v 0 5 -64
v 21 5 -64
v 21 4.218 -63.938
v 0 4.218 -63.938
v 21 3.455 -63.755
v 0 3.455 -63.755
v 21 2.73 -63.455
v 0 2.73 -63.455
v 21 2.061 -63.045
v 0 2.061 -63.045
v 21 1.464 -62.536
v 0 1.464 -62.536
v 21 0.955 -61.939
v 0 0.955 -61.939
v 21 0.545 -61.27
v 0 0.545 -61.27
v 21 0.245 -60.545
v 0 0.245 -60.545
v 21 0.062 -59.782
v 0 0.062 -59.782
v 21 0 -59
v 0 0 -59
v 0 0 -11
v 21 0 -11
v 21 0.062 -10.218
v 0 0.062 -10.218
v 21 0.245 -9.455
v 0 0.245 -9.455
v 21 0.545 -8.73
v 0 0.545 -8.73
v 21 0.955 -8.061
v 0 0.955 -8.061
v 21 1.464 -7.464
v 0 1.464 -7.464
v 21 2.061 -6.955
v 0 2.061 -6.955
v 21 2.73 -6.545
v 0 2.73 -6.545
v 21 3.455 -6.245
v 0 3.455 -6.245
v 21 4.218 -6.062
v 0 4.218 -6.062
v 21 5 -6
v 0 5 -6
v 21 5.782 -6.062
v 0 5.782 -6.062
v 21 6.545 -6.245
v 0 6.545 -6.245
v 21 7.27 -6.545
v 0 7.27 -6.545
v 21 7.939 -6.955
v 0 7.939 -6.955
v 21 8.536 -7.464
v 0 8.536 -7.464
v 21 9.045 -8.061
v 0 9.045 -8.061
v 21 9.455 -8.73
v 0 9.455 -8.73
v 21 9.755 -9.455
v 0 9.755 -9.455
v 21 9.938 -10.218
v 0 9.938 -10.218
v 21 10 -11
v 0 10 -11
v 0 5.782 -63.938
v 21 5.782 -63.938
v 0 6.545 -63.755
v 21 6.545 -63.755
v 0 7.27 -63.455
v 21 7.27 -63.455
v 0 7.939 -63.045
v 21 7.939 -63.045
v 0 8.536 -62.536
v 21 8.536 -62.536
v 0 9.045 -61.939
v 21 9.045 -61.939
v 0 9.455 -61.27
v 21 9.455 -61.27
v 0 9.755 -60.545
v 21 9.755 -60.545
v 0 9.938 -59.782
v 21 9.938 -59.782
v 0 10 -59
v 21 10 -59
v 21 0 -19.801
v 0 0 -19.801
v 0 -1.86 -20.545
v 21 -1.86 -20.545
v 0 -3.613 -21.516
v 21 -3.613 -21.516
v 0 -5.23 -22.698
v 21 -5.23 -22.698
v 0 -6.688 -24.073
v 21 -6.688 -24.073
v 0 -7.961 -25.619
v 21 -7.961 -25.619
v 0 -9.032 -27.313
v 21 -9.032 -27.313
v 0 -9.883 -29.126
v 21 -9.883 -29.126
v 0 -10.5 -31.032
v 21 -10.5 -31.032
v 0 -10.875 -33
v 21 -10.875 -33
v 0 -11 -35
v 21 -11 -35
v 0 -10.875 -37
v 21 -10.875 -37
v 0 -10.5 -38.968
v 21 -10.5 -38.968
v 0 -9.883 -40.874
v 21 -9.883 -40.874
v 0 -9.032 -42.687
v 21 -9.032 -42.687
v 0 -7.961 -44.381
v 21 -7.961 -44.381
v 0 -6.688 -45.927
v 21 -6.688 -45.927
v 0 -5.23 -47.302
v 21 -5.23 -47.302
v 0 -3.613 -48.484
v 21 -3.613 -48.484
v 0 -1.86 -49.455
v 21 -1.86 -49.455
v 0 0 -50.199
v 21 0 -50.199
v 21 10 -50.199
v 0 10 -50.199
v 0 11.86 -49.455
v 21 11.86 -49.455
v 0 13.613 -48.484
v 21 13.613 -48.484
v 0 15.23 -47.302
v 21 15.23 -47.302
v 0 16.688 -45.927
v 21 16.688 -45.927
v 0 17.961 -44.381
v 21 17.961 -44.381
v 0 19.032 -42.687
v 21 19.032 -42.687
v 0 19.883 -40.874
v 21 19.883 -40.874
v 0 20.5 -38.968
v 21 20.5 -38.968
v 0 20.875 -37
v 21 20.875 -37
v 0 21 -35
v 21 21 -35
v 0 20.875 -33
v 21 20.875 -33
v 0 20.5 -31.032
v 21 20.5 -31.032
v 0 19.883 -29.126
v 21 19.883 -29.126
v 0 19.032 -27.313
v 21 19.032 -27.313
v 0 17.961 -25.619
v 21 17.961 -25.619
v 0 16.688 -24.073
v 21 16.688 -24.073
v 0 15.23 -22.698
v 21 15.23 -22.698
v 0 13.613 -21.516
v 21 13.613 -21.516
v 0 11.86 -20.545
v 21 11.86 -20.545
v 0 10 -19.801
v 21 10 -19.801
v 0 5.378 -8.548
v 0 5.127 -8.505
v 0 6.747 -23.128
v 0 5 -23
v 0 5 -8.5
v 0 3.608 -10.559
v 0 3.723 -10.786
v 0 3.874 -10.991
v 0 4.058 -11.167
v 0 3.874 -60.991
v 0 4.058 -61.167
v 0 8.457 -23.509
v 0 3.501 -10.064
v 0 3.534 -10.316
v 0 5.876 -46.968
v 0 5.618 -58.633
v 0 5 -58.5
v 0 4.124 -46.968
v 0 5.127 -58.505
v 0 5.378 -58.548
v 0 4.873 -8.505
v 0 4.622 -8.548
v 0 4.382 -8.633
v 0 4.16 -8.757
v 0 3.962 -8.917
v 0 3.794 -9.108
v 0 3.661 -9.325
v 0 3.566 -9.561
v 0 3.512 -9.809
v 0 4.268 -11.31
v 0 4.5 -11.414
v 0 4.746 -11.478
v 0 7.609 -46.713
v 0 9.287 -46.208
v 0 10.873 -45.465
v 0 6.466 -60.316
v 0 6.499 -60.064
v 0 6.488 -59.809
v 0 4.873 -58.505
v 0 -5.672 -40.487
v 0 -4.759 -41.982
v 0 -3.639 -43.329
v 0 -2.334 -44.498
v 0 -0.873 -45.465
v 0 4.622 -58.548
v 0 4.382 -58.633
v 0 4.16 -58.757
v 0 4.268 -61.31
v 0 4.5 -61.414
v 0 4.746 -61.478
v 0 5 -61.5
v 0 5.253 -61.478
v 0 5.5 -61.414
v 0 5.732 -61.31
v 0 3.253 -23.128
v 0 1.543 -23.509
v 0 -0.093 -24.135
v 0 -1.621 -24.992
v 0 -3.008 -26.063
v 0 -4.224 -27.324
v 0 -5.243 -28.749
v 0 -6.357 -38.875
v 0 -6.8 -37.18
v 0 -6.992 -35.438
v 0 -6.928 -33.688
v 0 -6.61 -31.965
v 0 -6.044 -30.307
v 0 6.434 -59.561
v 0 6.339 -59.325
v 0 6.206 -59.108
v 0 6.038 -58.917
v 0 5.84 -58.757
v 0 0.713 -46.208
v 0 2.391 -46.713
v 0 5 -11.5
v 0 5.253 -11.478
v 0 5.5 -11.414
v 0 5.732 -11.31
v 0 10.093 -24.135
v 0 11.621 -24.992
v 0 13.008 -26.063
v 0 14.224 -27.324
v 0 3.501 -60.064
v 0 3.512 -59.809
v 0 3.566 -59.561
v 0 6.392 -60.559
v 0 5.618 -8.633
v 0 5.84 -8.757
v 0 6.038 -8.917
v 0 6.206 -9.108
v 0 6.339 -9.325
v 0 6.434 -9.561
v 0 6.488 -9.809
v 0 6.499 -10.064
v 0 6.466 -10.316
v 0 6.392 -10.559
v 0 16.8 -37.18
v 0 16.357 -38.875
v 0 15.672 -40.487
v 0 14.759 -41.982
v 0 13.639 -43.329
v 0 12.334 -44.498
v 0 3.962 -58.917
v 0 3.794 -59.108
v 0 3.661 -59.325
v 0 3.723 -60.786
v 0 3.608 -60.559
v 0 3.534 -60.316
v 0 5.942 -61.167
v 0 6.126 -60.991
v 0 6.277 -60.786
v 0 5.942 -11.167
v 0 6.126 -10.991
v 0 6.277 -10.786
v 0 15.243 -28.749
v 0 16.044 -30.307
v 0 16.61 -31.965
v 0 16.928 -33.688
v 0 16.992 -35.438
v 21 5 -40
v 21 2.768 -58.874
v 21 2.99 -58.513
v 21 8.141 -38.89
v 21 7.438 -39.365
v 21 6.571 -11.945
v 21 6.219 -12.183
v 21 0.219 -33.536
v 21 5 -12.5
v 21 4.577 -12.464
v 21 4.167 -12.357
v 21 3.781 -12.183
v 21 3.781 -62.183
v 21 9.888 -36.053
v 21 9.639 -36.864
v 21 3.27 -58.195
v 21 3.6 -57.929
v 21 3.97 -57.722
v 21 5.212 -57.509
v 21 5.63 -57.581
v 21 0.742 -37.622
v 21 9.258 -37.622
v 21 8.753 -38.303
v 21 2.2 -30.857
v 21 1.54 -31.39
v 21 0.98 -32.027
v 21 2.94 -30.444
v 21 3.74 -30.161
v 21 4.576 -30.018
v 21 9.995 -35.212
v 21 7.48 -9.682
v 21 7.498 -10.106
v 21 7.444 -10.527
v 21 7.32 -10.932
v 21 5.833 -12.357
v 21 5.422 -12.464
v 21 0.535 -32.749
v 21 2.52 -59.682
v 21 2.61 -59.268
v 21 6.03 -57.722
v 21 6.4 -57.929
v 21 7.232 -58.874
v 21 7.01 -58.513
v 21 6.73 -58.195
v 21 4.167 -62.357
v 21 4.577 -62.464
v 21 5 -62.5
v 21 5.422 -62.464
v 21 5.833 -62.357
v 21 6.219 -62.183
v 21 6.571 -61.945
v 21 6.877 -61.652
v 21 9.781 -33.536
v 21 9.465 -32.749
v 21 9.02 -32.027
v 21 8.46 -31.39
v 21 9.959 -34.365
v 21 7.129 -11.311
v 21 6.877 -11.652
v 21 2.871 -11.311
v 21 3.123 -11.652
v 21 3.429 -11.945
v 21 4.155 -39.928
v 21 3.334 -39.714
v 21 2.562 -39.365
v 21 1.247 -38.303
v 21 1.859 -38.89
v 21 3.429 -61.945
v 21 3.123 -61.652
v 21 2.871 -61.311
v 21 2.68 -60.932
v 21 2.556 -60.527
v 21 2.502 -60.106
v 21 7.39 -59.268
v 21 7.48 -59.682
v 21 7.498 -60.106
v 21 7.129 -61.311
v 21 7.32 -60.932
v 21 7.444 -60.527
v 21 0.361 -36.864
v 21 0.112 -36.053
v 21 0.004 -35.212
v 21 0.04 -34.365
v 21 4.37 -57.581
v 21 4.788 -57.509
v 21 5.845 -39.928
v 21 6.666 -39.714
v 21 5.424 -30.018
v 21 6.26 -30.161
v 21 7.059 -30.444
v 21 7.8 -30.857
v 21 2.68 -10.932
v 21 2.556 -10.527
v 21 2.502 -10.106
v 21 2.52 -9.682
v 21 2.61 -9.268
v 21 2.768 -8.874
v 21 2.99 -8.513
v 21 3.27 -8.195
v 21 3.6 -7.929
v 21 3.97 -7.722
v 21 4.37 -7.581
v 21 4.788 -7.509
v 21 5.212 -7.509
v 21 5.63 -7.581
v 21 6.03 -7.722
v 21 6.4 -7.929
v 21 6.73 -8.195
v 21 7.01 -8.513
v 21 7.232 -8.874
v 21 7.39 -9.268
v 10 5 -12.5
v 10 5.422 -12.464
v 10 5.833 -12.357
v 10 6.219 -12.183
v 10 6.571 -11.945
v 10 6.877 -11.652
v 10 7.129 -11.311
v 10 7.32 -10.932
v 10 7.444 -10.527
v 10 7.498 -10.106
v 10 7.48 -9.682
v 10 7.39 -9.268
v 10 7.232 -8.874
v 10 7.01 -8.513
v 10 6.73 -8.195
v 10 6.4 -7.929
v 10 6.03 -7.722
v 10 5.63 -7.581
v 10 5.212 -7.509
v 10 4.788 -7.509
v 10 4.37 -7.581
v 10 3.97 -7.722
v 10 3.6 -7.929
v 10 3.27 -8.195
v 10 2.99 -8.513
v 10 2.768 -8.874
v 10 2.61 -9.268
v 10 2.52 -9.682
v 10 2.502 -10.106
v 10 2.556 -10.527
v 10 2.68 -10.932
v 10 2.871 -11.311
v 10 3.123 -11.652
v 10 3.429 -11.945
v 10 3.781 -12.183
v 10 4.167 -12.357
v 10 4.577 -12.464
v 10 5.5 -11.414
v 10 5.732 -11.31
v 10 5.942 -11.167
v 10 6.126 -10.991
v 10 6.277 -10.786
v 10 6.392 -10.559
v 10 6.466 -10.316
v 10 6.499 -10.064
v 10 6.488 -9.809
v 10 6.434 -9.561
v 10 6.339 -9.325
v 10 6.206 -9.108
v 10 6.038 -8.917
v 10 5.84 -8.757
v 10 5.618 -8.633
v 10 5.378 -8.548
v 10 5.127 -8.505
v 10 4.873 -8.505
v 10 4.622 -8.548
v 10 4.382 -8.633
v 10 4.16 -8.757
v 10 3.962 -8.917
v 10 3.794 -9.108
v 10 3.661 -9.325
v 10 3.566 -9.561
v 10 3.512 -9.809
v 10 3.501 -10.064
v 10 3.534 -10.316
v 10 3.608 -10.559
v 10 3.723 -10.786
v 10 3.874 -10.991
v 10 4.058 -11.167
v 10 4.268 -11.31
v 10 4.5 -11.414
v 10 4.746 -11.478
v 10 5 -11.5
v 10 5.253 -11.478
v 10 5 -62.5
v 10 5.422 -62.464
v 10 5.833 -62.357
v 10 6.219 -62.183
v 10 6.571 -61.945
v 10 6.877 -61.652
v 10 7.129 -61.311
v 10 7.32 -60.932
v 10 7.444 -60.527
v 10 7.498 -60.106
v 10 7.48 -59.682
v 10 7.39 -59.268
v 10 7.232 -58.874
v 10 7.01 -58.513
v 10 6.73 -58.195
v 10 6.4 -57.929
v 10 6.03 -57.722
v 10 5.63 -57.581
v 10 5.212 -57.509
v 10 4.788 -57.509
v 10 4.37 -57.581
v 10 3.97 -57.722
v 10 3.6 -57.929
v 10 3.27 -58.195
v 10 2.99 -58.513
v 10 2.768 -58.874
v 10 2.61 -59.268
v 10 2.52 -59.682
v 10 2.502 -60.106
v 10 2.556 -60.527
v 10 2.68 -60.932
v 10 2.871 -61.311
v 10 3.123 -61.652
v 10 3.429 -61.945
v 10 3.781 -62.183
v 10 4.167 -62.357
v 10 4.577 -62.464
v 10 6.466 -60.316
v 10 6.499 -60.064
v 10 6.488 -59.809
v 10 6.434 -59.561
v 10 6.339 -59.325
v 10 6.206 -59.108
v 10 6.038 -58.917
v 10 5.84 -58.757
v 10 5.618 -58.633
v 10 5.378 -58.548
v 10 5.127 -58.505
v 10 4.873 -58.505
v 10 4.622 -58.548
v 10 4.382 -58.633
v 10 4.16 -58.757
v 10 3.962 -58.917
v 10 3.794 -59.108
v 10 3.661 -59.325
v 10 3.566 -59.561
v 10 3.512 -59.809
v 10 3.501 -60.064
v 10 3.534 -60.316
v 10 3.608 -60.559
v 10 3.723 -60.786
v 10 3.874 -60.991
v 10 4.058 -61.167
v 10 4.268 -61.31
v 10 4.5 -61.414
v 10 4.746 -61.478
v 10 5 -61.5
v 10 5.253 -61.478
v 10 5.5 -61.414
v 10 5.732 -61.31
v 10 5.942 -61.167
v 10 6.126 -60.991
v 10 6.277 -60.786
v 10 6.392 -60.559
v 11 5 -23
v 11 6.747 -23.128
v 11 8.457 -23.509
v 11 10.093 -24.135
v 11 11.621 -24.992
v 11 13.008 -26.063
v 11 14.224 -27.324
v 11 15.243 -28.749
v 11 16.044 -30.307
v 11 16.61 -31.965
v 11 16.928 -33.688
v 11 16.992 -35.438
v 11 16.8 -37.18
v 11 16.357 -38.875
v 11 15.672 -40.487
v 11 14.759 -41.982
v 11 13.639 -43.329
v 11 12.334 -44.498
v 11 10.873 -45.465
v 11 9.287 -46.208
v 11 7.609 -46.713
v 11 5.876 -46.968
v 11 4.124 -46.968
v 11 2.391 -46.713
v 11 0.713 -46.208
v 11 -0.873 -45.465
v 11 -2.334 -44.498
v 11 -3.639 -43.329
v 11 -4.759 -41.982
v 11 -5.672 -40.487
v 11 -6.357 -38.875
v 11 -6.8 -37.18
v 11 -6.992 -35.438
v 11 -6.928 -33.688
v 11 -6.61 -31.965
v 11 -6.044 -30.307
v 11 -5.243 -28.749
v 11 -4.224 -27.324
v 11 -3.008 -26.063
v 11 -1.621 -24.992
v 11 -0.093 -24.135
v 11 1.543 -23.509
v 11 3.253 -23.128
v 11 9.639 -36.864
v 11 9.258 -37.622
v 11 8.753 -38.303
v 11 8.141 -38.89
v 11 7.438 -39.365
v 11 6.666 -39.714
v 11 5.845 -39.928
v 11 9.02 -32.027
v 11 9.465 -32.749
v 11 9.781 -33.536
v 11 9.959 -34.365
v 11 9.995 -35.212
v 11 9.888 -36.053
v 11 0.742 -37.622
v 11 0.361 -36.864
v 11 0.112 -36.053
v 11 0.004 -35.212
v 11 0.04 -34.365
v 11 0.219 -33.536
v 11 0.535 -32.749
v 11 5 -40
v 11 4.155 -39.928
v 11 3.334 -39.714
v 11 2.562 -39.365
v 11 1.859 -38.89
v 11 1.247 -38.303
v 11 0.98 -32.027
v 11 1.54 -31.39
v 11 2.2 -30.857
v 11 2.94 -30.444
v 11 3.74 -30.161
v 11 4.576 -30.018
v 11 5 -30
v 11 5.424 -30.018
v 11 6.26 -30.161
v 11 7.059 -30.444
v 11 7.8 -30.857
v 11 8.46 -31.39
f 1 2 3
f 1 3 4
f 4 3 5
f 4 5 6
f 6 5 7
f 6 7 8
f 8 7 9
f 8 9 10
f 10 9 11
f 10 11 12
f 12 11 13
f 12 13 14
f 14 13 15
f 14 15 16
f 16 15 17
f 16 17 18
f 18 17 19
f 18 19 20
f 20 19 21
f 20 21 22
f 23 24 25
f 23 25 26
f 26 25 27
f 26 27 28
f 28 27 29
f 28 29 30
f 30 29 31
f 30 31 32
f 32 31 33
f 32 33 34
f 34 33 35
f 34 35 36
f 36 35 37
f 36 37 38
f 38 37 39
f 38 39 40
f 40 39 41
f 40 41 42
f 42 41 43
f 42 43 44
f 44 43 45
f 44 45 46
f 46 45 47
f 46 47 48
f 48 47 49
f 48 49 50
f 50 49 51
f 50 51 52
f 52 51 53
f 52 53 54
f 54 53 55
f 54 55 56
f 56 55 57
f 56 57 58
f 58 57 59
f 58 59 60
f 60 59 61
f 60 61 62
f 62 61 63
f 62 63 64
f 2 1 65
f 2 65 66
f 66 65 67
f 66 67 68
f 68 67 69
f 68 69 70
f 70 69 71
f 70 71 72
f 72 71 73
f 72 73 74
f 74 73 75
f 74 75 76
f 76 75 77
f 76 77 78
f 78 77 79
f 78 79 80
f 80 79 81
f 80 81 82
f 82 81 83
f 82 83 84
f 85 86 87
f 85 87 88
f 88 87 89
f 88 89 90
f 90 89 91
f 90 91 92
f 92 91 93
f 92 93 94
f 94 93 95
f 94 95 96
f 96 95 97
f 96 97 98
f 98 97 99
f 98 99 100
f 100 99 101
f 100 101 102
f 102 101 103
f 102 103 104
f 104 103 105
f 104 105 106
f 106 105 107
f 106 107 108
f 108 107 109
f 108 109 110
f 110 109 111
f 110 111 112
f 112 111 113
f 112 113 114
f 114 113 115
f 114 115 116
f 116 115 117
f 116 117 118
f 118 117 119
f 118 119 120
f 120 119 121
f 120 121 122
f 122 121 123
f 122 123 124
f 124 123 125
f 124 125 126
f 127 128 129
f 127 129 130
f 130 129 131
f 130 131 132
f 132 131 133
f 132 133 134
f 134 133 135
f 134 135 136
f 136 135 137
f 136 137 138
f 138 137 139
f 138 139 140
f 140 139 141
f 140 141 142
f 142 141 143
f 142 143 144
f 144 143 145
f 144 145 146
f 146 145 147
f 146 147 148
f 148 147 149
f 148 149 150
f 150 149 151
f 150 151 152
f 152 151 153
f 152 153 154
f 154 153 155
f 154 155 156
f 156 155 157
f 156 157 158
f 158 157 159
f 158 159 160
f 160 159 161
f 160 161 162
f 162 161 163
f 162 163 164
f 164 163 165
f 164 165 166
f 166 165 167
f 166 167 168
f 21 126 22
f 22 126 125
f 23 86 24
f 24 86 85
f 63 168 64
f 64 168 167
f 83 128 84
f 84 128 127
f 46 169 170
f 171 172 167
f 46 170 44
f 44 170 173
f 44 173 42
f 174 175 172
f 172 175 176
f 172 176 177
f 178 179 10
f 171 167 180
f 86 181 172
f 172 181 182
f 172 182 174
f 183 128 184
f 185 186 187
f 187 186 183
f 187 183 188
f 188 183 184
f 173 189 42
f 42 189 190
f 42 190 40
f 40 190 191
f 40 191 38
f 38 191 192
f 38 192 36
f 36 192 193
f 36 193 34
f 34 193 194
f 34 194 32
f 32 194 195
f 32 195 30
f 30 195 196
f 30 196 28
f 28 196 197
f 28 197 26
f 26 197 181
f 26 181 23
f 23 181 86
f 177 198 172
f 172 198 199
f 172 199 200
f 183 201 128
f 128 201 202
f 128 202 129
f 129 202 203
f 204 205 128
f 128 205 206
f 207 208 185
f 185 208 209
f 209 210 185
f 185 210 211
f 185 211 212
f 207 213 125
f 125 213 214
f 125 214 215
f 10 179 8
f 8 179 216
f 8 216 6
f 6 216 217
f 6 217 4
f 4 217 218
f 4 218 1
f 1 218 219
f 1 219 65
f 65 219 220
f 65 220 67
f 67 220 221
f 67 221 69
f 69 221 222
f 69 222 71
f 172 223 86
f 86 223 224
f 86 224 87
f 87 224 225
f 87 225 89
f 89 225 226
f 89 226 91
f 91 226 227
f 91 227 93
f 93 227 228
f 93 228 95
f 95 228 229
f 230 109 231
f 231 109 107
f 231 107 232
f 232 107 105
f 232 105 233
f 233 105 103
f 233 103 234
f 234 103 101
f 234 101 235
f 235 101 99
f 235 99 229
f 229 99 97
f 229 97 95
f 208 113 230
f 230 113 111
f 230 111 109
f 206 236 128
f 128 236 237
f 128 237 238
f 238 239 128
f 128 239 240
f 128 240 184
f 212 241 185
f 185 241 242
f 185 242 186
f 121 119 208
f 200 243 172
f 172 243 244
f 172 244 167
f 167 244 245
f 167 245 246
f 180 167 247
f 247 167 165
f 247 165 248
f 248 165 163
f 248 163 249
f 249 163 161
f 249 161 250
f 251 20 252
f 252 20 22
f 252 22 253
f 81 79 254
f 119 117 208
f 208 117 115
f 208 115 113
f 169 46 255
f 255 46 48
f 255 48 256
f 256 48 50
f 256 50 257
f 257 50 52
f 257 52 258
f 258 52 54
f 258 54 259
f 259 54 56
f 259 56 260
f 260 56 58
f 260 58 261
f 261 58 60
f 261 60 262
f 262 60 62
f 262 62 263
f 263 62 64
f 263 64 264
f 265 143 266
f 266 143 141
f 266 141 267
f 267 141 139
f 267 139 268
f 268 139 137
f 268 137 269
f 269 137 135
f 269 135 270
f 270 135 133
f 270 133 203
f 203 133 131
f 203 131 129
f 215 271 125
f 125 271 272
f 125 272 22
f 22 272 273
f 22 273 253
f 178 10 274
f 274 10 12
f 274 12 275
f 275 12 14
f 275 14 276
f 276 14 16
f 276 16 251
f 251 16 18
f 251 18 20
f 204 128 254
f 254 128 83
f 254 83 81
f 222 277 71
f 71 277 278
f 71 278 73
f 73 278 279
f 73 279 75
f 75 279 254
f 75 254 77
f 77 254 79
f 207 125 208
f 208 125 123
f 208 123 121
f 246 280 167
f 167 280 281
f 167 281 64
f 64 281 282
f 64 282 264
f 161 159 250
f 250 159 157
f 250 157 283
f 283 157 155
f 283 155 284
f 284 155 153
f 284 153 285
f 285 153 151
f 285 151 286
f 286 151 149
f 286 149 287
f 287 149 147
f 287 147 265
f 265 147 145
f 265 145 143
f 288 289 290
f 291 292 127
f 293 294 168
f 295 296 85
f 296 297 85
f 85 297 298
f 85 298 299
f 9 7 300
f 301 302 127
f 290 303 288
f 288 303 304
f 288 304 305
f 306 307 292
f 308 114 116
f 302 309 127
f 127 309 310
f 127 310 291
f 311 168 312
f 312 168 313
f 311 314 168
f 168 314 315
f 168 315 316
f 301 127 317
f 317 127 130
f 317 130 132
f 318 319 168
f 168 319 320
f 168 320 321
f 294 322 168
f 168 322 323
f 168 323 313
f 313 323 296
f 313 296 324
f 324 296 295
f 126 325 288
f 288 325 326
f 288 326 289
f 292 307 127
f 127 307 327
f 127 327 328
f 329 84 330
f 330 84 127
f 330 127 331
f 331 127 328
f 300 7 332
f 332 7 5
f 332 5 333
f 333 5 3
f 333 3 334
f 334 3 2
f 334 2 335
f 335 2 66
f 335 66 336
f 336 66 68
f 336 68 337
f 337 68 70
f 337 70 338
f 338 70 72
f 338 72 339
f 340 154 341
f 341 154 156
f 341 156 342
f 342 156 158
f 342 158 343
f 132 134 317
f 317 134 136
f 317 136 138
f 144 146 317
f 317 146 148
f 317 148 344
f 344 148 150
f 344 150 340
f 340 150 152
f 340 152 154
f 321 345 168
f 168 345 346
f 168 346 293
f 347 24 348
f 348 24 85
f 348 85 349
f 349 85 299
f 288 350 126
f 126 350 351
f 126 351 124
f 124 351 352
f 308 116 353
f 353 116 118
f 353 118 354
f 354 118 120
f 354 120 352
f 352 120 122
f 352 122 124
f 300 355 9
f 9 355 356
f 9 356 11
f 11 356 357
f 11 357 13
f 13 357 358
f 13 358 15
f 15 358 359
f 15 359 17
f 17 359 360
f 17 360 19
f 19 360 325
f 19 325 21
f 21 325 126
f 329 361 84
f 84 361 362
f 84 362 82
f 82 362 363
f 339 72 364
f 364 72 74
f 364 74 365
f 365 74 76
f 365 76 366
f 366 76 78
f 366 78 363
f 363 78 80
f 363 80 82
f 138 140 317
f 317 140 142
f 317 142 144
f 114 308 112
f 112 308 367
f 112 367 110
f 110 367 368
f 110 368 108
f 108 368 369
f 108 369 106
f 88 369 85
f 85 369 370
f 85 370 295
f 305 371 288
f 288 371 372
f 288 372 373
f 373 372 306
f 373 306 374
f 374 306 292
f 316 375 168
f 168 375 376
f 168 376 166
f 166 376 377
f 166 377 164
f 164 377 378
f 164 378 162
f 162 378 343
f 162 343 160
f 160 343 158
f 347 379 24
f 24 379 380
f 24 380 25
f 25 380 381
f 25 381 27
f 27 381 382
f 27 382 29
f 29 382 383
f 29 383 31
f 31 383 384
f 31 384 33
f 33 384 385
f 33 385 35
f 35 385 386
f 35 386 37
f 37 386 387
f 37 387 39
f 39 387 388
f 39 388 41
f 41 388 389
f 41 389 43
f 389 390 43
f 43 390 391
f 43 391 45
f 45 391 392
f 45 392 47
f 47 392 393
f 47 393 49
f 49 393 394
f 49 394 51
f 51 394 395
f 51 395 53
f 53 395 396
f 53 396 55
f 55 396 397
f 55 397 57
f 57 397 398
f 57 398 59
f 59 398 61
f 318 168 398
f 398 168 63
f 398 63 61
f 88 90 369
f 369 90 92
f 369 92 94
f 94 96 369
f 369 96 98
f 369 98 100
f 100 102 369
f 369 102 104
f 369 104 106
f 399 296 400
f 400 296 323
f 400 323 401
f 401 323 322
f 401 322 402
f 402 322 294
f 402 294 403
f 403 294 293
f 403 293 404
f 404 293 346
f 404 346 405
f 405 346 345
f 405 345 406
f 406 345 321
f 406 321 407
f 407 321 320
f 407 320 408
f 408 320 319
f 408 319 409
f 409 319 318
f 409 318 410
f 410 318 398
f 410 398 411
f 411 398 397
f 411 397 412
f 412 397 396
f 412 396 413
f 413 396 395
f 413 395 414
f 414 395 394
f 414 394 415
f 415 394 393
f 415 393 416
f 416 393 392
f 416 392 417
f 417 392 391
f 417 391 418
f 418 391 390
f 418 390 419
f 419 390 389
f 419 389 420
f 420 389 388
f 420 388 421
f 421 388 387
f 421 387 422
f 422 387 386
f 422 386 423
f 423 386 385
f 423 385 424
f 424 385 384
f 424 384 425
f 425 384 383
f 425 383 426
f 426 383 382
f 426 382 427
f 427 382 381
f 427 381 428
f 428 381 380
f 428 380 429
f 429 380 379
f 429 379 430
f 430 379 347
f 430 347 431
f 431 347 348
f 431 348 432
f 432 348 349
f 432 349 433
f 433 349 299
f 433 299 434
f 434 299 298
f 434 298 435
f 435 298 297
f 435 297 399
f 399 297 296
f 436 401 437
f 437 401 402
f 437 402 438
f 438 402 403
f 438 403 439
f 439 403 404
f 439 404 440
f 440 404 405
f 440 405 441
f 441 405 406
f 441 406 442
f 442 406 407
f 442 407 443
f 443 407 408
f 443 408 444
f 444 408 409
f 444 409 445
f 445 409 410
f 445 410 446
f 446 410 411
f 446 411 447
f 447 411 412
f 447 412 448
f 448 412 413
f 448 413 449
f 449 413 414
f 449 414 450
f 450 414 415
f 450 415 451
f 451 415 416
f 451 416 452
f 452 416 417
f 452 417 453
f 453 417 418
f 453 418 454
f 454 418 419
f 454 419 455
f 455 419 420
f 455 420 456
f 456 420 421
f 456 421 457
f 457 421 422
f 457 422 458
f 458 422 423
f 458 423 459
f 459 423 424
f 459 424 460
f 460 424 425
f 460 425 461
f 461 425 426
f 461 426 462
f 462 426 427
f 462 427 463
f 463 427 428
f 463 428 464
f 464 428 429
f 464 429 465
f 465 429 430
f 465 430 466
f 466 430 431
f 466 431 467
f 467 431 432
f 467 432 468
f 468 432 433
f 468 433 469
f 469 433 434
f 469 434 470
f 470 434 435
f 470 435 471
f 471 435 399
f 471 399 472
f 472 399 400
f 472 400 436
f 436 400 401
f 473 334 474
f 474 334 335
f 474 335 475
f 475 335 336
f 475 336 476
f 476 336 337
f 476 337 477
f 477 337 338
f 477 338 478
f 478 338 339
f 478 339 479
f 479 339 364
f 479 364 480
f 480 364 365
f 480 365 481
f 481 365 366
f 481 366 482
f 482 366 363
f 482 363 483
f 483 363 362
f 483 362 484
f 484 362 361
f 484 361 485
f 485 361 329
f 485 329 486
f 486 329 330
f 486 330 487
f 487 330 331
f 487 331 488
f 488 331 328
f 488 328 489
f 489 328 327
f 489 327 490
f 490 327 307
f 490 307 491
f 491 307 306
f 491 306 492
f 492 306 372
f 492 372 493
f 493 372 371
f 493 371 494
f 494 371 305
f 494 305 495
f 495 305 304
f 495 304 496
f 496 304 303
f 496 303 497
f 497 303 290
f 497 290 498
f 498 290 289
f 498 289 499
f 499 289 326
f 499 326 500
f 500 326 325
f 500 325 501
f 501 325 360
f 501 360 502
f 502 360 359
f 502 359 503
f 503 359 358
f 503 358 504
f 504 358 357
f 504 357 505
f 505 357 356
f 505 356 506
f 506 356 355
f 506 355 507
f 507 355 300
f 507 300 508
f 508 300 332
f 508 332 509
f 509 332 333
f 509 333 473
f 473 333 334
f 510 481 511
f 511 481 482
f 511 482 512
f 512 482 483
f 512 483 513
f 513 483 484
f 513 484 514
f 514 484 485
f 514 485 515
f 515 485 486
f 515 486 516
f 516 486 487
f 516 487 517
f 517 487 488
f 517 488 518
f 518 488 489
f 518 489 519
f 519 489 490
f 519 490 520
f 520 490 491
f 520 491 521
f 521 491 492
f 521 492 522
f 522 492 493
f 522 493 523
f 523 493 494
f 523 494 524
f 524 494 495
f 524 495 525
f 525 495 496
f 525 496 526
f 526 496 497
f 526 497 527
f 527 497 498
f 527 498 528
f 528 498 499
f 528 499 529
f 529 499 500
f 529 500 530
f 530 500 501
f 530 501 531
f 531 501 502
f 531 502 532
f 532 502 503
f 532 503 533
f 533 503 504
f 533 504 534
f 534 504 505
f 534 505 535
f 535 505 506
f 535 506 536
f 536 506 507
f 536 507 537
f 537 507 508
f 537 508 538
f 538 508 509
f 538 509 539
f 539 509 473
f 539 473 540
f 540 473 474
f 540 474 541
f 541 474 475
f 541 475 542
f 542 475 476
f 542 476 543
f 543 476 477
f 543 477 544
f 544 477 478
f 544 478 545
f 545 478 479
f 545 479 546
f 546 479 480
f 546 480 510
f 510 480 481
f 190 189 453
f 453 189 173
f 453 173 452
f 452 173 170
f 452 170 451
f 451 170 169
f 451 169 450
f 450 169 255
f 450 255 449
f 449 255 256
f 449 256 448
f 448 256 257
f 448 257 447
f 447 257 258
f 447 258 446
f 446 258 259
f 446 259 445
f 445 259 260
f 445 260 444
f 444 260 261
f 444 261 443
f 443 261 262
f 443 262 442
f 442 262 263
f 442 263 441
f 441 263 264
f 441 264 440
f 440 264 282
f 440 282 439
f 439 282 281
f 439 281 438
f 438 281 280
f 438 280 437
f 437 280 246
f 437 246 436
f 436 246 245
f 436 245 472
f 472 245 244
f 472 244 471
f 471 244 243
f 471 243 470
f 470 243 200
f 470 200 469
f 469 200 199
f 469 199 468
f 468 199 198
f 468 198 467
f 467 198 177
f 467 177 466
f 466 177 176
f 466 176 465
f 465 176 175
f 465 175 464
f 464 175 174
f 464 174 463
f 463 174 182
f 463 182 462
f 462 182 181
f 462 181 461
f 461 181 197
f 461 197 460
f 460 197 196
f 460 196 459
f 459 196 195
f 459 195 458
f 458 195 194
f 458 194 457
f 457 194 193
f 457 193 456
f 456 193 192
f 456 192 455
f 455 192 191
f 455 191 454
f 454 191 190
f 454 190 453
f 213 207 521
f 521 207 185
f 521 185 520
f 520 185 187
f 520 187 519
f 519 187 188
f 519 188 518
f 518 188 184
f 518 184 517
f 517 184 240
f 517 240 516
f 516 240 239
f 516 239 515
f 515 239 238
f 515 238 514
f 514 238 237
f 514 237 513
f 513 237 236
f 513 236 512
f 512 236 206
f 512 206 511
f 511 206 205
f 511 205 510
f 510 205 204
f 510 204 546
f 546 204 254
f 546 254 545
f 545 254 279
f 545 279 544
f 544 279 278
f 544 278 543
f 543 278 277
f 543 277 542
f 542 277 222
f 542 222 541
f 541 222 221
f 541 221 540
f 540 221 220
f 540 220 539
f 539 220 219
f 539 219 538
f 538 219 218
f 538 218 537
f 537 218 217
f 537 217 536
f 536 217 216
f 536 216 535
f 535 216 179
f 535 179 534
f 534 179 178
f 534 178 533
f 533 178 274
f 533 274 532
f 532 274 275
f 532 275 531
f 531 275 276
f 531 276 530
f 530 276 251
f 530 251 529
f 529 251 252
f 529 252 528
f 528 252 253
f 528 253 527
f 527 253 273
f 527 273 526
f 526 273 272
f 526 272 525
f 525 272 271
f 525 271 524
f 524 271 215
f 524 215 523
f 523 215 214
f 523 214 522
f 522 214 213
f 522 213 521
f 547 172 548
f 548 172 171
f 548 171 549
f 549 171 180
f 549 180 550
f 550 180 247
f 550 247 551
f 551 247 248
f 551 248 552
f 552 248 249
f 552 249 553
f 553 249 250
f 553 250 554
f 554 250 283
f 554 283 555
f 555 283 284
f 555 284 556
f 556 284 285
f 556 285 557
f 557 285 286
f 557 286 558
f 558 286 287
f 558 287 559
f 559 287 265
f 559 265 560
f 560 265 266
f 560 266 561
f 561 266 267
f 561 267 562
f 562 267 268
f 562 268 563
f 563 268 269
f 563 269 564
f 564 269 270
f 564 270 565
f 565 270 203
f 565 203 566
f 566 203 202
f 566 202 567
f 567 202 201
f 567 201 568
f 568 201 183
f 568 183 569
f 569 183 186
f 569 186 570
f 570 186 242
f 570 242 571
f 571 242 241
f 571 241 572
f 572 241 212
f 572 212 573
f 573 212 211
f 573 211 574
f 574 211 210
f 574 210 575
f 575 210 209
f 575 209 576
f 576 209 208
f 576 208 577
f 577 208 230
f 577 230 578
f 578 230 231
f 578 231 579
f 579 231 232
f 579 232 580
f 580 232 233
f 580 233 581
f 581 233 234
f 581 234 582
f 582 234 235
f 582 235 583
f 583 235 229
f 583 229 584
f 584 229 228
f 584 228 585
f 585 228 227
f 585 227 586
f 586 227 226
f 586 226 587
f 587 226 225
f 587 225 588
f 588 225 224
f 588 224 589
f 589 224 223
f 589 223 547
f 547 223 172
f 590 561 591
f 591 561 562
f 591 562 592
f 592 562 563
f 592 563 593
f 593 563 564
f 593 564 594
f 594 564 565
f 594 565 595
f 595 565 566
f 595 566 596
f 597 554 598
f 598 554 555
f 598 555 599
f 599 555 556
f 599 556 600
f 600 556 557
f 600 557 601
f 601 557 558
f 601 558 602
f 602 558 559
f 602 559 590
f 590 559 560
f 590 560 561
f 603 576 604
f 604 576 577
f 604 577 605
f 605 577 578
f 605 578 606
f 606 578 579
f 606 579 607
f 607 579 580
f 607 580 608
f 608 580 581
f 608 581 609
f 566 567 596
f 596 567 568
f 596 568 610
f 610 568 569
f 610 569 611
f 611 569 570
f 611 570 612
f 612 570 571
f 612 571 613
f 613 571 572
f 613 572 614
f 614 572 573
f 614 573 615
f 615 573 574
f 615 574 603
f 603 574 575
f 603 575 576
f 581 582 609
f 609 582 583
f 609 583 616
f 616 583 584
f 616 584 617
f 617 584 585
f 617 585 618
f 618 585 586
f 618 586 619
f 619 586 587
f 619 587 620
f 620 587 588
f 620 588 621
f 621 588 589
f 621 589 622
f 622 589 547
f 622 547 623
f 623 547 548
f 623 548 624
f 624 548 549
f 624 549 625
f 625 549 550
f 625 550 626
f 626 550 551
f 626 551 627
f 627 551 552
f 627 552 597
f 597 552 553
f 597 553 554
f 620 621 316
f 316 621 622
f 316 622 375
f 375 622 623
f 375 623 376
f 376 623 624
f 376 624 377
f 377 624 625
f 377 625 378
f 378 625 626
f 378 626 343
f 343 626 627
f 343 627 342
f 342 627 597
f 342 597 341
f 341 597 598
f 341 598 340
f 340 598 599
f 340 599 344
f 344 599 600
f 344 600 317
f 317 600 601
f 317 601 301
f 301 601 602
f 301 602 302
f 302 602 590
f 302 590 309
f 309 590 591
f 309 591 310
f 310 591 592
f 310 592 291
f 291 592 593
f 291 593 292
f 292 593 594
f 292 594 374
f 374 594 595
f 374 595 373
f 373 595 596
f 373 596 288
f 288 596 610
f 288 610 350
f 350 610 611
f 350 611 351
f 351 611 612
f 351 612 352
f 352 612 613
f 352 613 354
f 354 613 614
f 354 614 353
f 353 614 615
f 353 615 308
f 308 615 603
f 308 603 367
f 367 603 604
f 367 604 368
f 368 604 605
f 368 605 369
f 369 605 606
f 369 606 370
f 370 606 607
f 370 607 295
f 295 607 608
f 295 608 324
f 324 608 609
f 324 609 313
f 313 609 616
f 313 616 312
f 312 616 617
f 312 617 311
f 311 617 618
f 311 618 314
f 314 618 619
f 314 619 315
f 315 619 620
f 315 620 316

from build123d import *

# Parameters (mm, degrees)
SKETCH1_W                = 70
SKETCH1_H                = 10
BOSS_EXTRUDE1_DEPTH      = 5
BOSS_EXTRUDE2_DEPTH      = 16
BOSS_EXTRUDE2_DEPTH_BACK = 5
SKETCH2_R                = 16
SKETCH3_W                = 70
SKETCH3_H                = 10
BOSS_EXTRUDE3_DEPTH      = 16
SKETCH4_R                = 2.5
CUT_EXTRUDE1_DEPTH       = 11
SKETCH5_R                = 1.5
CUT_EXTRUDE2_DEPTH       = 38
SKETCH6_R                = 12
CUT_EXTRUDE3_DEPTH       = 11
SKETCH7_R                = 5
CUT_EXTRUDE4_DEPTH       = 40
SKETCH8_W                = 6
SKETCH8_H                = 10
CUT_EXTRUDE5_DEPTH       = 40
FILLET1_R                = 5
FILLET2_R                = 5
FILLET3_R                = 5
FILLET4_R                = 5


with BuildPart() as part:
    # Sketch1 → Boss-Extrude1 (new body)
    with BuildSketch(Plane(origin=(0, 0, 0), x_dir=(0, 0, -1), z_dir=(1, 0, 0))):
        with Locations((35, 5)):
            Rectangle(SKETCH1_W, SKETCH1_H)
    extrude(amount=BOSS_EXTRUDE1_DEPTH)

    # Sketch2 → Boss-Extrude2 (add, two sides: drawn at the far end of the back side and taken through both)
    with BuildSketch(Plane(origin=(5, 0, 0), x_dir=(0, 0, -1), z_dir=(1, 0, 0)).offset(-BOSS_EXTRUDE2_DEPTH_BACK)):
        with Locations(Location((35, 5, 0), (0, 0, 161.790043136))):
            Circle(SKETCH2_R)
    extrude(amount=BOSS_EXTRUDE2_DEPTH + BOSS_EXTRUDE2_DEPTH_BACK)

    # Sketch3 → Boss-Extrude3 (add)
    with BuildSketch(Plane(origin=(5, 0, 0), x_dir=(0, 0, -1), z_dir=(1, 0, 0))):
        with Locations((35, 5)):
            Rectangle(SKETCH3_W, SKETCH3_H)
    extrude(amount=BOSS_EXTRUDE3_DEPTH)

    # Sketch4 → Cut-Extrude1 (cut)
    with BuildSketch(Plane(origin=(21, 0, 0), x_dir=(0, 0, -1), z_dir=(1, 0, 0))):
        with Locations((10, 5)):
            Circle(SKETCH4_R)
        with Locations((60, 5)):
            Circle(SKETCH4_R)
    extrude(amount=-CUT_EXTRUDE1_DEPTH, mode=Mode.SUBTRACT)

    # Sketch5 → Cut-Extrude2 (cut)
    with BuildSketch(Plane(origin=(21, 0, 0), x_dir=(0, 0, -1), z_dir=(1, 0, 0))):
        with Locations((10, 5)):
            Circle(SKETCH5_R)
        with Locations((60, 5)):
            Circle(SKETCH5_R)
    extrude(amount=-CUT_EXTRUDE2_DEPTH, mode=Mode.SUBTRACT)

    # Sketch6 → Cut-Extrude3 (cut)
    with BuildSketch(Plane.ZY):
        with Locations((-35, 5)):
            Circle(SKETCH6_R)
    extrude(amount=-CUT_EXTRUDE3_DEPTH, mode=Mode.SUBTRACT)

    # Sketch7 → Cut-Extrude4 (cut)
    with BuildSketch(Plane(origin=(21, 0, 0), x_dir=(0, 0, -1), z_dir=(1, 0, 0))):
        with Locations((35, 5)):
            Circle(SKETCH7_R)
    extrude(amount=-CUT_EXTRUDE4_DEPTH, mode=Mode.SUBTRACT)

    # Sketch8 → Cut-Extrude5 (cut)
    with BuildSketch(Plane.ZY):
        with Locations((-67, 5)):
            Rectangle(SKETCH8_W, SKETCH8_H)
        with Locations((-3, 5)):
            Rectangle(SKETCH8_W, SKETCH8_H)
    extrude(amount=-CUT_EXTRUDE5_DEPTH, mode=Mode.SUBTRACT)

    # Fillet1
    fillet1_edges = [part.edges().sort_by_distance(p)[0] for p in [
        (10.5, 10, -64),
    ]]
    fillet(fillet1_edges, radius=FILLET1_R)

    # Fillet2
    fillet2_edges = [part.edges().sort_by_distance(p)[0] for p in [
        (10.5, 10, -6),
    ]]
    fillet(fillet2_edges, radius=FILLET2_R)

    # Fillet3
    fillet3_edges = [part.edges().sort_by_distance(p)[0] for p in [
        (10.5, 0, -6),
    ]]
    fillet(fillet3_edges, radius=FILLET3_R - 0.0001)  # a hair under: the kernel refuses the full size

    # Fillet4
    fillet4_edges = [part.edges().sort_by_distance(p)[0] for p in [
        (10.5, 0, -64),
    ]]
    fillet(fillet4_edges, radius=FILLET4_R - 0.0001)  # a hair under: the kernel refuses the full size


solid = part.part
